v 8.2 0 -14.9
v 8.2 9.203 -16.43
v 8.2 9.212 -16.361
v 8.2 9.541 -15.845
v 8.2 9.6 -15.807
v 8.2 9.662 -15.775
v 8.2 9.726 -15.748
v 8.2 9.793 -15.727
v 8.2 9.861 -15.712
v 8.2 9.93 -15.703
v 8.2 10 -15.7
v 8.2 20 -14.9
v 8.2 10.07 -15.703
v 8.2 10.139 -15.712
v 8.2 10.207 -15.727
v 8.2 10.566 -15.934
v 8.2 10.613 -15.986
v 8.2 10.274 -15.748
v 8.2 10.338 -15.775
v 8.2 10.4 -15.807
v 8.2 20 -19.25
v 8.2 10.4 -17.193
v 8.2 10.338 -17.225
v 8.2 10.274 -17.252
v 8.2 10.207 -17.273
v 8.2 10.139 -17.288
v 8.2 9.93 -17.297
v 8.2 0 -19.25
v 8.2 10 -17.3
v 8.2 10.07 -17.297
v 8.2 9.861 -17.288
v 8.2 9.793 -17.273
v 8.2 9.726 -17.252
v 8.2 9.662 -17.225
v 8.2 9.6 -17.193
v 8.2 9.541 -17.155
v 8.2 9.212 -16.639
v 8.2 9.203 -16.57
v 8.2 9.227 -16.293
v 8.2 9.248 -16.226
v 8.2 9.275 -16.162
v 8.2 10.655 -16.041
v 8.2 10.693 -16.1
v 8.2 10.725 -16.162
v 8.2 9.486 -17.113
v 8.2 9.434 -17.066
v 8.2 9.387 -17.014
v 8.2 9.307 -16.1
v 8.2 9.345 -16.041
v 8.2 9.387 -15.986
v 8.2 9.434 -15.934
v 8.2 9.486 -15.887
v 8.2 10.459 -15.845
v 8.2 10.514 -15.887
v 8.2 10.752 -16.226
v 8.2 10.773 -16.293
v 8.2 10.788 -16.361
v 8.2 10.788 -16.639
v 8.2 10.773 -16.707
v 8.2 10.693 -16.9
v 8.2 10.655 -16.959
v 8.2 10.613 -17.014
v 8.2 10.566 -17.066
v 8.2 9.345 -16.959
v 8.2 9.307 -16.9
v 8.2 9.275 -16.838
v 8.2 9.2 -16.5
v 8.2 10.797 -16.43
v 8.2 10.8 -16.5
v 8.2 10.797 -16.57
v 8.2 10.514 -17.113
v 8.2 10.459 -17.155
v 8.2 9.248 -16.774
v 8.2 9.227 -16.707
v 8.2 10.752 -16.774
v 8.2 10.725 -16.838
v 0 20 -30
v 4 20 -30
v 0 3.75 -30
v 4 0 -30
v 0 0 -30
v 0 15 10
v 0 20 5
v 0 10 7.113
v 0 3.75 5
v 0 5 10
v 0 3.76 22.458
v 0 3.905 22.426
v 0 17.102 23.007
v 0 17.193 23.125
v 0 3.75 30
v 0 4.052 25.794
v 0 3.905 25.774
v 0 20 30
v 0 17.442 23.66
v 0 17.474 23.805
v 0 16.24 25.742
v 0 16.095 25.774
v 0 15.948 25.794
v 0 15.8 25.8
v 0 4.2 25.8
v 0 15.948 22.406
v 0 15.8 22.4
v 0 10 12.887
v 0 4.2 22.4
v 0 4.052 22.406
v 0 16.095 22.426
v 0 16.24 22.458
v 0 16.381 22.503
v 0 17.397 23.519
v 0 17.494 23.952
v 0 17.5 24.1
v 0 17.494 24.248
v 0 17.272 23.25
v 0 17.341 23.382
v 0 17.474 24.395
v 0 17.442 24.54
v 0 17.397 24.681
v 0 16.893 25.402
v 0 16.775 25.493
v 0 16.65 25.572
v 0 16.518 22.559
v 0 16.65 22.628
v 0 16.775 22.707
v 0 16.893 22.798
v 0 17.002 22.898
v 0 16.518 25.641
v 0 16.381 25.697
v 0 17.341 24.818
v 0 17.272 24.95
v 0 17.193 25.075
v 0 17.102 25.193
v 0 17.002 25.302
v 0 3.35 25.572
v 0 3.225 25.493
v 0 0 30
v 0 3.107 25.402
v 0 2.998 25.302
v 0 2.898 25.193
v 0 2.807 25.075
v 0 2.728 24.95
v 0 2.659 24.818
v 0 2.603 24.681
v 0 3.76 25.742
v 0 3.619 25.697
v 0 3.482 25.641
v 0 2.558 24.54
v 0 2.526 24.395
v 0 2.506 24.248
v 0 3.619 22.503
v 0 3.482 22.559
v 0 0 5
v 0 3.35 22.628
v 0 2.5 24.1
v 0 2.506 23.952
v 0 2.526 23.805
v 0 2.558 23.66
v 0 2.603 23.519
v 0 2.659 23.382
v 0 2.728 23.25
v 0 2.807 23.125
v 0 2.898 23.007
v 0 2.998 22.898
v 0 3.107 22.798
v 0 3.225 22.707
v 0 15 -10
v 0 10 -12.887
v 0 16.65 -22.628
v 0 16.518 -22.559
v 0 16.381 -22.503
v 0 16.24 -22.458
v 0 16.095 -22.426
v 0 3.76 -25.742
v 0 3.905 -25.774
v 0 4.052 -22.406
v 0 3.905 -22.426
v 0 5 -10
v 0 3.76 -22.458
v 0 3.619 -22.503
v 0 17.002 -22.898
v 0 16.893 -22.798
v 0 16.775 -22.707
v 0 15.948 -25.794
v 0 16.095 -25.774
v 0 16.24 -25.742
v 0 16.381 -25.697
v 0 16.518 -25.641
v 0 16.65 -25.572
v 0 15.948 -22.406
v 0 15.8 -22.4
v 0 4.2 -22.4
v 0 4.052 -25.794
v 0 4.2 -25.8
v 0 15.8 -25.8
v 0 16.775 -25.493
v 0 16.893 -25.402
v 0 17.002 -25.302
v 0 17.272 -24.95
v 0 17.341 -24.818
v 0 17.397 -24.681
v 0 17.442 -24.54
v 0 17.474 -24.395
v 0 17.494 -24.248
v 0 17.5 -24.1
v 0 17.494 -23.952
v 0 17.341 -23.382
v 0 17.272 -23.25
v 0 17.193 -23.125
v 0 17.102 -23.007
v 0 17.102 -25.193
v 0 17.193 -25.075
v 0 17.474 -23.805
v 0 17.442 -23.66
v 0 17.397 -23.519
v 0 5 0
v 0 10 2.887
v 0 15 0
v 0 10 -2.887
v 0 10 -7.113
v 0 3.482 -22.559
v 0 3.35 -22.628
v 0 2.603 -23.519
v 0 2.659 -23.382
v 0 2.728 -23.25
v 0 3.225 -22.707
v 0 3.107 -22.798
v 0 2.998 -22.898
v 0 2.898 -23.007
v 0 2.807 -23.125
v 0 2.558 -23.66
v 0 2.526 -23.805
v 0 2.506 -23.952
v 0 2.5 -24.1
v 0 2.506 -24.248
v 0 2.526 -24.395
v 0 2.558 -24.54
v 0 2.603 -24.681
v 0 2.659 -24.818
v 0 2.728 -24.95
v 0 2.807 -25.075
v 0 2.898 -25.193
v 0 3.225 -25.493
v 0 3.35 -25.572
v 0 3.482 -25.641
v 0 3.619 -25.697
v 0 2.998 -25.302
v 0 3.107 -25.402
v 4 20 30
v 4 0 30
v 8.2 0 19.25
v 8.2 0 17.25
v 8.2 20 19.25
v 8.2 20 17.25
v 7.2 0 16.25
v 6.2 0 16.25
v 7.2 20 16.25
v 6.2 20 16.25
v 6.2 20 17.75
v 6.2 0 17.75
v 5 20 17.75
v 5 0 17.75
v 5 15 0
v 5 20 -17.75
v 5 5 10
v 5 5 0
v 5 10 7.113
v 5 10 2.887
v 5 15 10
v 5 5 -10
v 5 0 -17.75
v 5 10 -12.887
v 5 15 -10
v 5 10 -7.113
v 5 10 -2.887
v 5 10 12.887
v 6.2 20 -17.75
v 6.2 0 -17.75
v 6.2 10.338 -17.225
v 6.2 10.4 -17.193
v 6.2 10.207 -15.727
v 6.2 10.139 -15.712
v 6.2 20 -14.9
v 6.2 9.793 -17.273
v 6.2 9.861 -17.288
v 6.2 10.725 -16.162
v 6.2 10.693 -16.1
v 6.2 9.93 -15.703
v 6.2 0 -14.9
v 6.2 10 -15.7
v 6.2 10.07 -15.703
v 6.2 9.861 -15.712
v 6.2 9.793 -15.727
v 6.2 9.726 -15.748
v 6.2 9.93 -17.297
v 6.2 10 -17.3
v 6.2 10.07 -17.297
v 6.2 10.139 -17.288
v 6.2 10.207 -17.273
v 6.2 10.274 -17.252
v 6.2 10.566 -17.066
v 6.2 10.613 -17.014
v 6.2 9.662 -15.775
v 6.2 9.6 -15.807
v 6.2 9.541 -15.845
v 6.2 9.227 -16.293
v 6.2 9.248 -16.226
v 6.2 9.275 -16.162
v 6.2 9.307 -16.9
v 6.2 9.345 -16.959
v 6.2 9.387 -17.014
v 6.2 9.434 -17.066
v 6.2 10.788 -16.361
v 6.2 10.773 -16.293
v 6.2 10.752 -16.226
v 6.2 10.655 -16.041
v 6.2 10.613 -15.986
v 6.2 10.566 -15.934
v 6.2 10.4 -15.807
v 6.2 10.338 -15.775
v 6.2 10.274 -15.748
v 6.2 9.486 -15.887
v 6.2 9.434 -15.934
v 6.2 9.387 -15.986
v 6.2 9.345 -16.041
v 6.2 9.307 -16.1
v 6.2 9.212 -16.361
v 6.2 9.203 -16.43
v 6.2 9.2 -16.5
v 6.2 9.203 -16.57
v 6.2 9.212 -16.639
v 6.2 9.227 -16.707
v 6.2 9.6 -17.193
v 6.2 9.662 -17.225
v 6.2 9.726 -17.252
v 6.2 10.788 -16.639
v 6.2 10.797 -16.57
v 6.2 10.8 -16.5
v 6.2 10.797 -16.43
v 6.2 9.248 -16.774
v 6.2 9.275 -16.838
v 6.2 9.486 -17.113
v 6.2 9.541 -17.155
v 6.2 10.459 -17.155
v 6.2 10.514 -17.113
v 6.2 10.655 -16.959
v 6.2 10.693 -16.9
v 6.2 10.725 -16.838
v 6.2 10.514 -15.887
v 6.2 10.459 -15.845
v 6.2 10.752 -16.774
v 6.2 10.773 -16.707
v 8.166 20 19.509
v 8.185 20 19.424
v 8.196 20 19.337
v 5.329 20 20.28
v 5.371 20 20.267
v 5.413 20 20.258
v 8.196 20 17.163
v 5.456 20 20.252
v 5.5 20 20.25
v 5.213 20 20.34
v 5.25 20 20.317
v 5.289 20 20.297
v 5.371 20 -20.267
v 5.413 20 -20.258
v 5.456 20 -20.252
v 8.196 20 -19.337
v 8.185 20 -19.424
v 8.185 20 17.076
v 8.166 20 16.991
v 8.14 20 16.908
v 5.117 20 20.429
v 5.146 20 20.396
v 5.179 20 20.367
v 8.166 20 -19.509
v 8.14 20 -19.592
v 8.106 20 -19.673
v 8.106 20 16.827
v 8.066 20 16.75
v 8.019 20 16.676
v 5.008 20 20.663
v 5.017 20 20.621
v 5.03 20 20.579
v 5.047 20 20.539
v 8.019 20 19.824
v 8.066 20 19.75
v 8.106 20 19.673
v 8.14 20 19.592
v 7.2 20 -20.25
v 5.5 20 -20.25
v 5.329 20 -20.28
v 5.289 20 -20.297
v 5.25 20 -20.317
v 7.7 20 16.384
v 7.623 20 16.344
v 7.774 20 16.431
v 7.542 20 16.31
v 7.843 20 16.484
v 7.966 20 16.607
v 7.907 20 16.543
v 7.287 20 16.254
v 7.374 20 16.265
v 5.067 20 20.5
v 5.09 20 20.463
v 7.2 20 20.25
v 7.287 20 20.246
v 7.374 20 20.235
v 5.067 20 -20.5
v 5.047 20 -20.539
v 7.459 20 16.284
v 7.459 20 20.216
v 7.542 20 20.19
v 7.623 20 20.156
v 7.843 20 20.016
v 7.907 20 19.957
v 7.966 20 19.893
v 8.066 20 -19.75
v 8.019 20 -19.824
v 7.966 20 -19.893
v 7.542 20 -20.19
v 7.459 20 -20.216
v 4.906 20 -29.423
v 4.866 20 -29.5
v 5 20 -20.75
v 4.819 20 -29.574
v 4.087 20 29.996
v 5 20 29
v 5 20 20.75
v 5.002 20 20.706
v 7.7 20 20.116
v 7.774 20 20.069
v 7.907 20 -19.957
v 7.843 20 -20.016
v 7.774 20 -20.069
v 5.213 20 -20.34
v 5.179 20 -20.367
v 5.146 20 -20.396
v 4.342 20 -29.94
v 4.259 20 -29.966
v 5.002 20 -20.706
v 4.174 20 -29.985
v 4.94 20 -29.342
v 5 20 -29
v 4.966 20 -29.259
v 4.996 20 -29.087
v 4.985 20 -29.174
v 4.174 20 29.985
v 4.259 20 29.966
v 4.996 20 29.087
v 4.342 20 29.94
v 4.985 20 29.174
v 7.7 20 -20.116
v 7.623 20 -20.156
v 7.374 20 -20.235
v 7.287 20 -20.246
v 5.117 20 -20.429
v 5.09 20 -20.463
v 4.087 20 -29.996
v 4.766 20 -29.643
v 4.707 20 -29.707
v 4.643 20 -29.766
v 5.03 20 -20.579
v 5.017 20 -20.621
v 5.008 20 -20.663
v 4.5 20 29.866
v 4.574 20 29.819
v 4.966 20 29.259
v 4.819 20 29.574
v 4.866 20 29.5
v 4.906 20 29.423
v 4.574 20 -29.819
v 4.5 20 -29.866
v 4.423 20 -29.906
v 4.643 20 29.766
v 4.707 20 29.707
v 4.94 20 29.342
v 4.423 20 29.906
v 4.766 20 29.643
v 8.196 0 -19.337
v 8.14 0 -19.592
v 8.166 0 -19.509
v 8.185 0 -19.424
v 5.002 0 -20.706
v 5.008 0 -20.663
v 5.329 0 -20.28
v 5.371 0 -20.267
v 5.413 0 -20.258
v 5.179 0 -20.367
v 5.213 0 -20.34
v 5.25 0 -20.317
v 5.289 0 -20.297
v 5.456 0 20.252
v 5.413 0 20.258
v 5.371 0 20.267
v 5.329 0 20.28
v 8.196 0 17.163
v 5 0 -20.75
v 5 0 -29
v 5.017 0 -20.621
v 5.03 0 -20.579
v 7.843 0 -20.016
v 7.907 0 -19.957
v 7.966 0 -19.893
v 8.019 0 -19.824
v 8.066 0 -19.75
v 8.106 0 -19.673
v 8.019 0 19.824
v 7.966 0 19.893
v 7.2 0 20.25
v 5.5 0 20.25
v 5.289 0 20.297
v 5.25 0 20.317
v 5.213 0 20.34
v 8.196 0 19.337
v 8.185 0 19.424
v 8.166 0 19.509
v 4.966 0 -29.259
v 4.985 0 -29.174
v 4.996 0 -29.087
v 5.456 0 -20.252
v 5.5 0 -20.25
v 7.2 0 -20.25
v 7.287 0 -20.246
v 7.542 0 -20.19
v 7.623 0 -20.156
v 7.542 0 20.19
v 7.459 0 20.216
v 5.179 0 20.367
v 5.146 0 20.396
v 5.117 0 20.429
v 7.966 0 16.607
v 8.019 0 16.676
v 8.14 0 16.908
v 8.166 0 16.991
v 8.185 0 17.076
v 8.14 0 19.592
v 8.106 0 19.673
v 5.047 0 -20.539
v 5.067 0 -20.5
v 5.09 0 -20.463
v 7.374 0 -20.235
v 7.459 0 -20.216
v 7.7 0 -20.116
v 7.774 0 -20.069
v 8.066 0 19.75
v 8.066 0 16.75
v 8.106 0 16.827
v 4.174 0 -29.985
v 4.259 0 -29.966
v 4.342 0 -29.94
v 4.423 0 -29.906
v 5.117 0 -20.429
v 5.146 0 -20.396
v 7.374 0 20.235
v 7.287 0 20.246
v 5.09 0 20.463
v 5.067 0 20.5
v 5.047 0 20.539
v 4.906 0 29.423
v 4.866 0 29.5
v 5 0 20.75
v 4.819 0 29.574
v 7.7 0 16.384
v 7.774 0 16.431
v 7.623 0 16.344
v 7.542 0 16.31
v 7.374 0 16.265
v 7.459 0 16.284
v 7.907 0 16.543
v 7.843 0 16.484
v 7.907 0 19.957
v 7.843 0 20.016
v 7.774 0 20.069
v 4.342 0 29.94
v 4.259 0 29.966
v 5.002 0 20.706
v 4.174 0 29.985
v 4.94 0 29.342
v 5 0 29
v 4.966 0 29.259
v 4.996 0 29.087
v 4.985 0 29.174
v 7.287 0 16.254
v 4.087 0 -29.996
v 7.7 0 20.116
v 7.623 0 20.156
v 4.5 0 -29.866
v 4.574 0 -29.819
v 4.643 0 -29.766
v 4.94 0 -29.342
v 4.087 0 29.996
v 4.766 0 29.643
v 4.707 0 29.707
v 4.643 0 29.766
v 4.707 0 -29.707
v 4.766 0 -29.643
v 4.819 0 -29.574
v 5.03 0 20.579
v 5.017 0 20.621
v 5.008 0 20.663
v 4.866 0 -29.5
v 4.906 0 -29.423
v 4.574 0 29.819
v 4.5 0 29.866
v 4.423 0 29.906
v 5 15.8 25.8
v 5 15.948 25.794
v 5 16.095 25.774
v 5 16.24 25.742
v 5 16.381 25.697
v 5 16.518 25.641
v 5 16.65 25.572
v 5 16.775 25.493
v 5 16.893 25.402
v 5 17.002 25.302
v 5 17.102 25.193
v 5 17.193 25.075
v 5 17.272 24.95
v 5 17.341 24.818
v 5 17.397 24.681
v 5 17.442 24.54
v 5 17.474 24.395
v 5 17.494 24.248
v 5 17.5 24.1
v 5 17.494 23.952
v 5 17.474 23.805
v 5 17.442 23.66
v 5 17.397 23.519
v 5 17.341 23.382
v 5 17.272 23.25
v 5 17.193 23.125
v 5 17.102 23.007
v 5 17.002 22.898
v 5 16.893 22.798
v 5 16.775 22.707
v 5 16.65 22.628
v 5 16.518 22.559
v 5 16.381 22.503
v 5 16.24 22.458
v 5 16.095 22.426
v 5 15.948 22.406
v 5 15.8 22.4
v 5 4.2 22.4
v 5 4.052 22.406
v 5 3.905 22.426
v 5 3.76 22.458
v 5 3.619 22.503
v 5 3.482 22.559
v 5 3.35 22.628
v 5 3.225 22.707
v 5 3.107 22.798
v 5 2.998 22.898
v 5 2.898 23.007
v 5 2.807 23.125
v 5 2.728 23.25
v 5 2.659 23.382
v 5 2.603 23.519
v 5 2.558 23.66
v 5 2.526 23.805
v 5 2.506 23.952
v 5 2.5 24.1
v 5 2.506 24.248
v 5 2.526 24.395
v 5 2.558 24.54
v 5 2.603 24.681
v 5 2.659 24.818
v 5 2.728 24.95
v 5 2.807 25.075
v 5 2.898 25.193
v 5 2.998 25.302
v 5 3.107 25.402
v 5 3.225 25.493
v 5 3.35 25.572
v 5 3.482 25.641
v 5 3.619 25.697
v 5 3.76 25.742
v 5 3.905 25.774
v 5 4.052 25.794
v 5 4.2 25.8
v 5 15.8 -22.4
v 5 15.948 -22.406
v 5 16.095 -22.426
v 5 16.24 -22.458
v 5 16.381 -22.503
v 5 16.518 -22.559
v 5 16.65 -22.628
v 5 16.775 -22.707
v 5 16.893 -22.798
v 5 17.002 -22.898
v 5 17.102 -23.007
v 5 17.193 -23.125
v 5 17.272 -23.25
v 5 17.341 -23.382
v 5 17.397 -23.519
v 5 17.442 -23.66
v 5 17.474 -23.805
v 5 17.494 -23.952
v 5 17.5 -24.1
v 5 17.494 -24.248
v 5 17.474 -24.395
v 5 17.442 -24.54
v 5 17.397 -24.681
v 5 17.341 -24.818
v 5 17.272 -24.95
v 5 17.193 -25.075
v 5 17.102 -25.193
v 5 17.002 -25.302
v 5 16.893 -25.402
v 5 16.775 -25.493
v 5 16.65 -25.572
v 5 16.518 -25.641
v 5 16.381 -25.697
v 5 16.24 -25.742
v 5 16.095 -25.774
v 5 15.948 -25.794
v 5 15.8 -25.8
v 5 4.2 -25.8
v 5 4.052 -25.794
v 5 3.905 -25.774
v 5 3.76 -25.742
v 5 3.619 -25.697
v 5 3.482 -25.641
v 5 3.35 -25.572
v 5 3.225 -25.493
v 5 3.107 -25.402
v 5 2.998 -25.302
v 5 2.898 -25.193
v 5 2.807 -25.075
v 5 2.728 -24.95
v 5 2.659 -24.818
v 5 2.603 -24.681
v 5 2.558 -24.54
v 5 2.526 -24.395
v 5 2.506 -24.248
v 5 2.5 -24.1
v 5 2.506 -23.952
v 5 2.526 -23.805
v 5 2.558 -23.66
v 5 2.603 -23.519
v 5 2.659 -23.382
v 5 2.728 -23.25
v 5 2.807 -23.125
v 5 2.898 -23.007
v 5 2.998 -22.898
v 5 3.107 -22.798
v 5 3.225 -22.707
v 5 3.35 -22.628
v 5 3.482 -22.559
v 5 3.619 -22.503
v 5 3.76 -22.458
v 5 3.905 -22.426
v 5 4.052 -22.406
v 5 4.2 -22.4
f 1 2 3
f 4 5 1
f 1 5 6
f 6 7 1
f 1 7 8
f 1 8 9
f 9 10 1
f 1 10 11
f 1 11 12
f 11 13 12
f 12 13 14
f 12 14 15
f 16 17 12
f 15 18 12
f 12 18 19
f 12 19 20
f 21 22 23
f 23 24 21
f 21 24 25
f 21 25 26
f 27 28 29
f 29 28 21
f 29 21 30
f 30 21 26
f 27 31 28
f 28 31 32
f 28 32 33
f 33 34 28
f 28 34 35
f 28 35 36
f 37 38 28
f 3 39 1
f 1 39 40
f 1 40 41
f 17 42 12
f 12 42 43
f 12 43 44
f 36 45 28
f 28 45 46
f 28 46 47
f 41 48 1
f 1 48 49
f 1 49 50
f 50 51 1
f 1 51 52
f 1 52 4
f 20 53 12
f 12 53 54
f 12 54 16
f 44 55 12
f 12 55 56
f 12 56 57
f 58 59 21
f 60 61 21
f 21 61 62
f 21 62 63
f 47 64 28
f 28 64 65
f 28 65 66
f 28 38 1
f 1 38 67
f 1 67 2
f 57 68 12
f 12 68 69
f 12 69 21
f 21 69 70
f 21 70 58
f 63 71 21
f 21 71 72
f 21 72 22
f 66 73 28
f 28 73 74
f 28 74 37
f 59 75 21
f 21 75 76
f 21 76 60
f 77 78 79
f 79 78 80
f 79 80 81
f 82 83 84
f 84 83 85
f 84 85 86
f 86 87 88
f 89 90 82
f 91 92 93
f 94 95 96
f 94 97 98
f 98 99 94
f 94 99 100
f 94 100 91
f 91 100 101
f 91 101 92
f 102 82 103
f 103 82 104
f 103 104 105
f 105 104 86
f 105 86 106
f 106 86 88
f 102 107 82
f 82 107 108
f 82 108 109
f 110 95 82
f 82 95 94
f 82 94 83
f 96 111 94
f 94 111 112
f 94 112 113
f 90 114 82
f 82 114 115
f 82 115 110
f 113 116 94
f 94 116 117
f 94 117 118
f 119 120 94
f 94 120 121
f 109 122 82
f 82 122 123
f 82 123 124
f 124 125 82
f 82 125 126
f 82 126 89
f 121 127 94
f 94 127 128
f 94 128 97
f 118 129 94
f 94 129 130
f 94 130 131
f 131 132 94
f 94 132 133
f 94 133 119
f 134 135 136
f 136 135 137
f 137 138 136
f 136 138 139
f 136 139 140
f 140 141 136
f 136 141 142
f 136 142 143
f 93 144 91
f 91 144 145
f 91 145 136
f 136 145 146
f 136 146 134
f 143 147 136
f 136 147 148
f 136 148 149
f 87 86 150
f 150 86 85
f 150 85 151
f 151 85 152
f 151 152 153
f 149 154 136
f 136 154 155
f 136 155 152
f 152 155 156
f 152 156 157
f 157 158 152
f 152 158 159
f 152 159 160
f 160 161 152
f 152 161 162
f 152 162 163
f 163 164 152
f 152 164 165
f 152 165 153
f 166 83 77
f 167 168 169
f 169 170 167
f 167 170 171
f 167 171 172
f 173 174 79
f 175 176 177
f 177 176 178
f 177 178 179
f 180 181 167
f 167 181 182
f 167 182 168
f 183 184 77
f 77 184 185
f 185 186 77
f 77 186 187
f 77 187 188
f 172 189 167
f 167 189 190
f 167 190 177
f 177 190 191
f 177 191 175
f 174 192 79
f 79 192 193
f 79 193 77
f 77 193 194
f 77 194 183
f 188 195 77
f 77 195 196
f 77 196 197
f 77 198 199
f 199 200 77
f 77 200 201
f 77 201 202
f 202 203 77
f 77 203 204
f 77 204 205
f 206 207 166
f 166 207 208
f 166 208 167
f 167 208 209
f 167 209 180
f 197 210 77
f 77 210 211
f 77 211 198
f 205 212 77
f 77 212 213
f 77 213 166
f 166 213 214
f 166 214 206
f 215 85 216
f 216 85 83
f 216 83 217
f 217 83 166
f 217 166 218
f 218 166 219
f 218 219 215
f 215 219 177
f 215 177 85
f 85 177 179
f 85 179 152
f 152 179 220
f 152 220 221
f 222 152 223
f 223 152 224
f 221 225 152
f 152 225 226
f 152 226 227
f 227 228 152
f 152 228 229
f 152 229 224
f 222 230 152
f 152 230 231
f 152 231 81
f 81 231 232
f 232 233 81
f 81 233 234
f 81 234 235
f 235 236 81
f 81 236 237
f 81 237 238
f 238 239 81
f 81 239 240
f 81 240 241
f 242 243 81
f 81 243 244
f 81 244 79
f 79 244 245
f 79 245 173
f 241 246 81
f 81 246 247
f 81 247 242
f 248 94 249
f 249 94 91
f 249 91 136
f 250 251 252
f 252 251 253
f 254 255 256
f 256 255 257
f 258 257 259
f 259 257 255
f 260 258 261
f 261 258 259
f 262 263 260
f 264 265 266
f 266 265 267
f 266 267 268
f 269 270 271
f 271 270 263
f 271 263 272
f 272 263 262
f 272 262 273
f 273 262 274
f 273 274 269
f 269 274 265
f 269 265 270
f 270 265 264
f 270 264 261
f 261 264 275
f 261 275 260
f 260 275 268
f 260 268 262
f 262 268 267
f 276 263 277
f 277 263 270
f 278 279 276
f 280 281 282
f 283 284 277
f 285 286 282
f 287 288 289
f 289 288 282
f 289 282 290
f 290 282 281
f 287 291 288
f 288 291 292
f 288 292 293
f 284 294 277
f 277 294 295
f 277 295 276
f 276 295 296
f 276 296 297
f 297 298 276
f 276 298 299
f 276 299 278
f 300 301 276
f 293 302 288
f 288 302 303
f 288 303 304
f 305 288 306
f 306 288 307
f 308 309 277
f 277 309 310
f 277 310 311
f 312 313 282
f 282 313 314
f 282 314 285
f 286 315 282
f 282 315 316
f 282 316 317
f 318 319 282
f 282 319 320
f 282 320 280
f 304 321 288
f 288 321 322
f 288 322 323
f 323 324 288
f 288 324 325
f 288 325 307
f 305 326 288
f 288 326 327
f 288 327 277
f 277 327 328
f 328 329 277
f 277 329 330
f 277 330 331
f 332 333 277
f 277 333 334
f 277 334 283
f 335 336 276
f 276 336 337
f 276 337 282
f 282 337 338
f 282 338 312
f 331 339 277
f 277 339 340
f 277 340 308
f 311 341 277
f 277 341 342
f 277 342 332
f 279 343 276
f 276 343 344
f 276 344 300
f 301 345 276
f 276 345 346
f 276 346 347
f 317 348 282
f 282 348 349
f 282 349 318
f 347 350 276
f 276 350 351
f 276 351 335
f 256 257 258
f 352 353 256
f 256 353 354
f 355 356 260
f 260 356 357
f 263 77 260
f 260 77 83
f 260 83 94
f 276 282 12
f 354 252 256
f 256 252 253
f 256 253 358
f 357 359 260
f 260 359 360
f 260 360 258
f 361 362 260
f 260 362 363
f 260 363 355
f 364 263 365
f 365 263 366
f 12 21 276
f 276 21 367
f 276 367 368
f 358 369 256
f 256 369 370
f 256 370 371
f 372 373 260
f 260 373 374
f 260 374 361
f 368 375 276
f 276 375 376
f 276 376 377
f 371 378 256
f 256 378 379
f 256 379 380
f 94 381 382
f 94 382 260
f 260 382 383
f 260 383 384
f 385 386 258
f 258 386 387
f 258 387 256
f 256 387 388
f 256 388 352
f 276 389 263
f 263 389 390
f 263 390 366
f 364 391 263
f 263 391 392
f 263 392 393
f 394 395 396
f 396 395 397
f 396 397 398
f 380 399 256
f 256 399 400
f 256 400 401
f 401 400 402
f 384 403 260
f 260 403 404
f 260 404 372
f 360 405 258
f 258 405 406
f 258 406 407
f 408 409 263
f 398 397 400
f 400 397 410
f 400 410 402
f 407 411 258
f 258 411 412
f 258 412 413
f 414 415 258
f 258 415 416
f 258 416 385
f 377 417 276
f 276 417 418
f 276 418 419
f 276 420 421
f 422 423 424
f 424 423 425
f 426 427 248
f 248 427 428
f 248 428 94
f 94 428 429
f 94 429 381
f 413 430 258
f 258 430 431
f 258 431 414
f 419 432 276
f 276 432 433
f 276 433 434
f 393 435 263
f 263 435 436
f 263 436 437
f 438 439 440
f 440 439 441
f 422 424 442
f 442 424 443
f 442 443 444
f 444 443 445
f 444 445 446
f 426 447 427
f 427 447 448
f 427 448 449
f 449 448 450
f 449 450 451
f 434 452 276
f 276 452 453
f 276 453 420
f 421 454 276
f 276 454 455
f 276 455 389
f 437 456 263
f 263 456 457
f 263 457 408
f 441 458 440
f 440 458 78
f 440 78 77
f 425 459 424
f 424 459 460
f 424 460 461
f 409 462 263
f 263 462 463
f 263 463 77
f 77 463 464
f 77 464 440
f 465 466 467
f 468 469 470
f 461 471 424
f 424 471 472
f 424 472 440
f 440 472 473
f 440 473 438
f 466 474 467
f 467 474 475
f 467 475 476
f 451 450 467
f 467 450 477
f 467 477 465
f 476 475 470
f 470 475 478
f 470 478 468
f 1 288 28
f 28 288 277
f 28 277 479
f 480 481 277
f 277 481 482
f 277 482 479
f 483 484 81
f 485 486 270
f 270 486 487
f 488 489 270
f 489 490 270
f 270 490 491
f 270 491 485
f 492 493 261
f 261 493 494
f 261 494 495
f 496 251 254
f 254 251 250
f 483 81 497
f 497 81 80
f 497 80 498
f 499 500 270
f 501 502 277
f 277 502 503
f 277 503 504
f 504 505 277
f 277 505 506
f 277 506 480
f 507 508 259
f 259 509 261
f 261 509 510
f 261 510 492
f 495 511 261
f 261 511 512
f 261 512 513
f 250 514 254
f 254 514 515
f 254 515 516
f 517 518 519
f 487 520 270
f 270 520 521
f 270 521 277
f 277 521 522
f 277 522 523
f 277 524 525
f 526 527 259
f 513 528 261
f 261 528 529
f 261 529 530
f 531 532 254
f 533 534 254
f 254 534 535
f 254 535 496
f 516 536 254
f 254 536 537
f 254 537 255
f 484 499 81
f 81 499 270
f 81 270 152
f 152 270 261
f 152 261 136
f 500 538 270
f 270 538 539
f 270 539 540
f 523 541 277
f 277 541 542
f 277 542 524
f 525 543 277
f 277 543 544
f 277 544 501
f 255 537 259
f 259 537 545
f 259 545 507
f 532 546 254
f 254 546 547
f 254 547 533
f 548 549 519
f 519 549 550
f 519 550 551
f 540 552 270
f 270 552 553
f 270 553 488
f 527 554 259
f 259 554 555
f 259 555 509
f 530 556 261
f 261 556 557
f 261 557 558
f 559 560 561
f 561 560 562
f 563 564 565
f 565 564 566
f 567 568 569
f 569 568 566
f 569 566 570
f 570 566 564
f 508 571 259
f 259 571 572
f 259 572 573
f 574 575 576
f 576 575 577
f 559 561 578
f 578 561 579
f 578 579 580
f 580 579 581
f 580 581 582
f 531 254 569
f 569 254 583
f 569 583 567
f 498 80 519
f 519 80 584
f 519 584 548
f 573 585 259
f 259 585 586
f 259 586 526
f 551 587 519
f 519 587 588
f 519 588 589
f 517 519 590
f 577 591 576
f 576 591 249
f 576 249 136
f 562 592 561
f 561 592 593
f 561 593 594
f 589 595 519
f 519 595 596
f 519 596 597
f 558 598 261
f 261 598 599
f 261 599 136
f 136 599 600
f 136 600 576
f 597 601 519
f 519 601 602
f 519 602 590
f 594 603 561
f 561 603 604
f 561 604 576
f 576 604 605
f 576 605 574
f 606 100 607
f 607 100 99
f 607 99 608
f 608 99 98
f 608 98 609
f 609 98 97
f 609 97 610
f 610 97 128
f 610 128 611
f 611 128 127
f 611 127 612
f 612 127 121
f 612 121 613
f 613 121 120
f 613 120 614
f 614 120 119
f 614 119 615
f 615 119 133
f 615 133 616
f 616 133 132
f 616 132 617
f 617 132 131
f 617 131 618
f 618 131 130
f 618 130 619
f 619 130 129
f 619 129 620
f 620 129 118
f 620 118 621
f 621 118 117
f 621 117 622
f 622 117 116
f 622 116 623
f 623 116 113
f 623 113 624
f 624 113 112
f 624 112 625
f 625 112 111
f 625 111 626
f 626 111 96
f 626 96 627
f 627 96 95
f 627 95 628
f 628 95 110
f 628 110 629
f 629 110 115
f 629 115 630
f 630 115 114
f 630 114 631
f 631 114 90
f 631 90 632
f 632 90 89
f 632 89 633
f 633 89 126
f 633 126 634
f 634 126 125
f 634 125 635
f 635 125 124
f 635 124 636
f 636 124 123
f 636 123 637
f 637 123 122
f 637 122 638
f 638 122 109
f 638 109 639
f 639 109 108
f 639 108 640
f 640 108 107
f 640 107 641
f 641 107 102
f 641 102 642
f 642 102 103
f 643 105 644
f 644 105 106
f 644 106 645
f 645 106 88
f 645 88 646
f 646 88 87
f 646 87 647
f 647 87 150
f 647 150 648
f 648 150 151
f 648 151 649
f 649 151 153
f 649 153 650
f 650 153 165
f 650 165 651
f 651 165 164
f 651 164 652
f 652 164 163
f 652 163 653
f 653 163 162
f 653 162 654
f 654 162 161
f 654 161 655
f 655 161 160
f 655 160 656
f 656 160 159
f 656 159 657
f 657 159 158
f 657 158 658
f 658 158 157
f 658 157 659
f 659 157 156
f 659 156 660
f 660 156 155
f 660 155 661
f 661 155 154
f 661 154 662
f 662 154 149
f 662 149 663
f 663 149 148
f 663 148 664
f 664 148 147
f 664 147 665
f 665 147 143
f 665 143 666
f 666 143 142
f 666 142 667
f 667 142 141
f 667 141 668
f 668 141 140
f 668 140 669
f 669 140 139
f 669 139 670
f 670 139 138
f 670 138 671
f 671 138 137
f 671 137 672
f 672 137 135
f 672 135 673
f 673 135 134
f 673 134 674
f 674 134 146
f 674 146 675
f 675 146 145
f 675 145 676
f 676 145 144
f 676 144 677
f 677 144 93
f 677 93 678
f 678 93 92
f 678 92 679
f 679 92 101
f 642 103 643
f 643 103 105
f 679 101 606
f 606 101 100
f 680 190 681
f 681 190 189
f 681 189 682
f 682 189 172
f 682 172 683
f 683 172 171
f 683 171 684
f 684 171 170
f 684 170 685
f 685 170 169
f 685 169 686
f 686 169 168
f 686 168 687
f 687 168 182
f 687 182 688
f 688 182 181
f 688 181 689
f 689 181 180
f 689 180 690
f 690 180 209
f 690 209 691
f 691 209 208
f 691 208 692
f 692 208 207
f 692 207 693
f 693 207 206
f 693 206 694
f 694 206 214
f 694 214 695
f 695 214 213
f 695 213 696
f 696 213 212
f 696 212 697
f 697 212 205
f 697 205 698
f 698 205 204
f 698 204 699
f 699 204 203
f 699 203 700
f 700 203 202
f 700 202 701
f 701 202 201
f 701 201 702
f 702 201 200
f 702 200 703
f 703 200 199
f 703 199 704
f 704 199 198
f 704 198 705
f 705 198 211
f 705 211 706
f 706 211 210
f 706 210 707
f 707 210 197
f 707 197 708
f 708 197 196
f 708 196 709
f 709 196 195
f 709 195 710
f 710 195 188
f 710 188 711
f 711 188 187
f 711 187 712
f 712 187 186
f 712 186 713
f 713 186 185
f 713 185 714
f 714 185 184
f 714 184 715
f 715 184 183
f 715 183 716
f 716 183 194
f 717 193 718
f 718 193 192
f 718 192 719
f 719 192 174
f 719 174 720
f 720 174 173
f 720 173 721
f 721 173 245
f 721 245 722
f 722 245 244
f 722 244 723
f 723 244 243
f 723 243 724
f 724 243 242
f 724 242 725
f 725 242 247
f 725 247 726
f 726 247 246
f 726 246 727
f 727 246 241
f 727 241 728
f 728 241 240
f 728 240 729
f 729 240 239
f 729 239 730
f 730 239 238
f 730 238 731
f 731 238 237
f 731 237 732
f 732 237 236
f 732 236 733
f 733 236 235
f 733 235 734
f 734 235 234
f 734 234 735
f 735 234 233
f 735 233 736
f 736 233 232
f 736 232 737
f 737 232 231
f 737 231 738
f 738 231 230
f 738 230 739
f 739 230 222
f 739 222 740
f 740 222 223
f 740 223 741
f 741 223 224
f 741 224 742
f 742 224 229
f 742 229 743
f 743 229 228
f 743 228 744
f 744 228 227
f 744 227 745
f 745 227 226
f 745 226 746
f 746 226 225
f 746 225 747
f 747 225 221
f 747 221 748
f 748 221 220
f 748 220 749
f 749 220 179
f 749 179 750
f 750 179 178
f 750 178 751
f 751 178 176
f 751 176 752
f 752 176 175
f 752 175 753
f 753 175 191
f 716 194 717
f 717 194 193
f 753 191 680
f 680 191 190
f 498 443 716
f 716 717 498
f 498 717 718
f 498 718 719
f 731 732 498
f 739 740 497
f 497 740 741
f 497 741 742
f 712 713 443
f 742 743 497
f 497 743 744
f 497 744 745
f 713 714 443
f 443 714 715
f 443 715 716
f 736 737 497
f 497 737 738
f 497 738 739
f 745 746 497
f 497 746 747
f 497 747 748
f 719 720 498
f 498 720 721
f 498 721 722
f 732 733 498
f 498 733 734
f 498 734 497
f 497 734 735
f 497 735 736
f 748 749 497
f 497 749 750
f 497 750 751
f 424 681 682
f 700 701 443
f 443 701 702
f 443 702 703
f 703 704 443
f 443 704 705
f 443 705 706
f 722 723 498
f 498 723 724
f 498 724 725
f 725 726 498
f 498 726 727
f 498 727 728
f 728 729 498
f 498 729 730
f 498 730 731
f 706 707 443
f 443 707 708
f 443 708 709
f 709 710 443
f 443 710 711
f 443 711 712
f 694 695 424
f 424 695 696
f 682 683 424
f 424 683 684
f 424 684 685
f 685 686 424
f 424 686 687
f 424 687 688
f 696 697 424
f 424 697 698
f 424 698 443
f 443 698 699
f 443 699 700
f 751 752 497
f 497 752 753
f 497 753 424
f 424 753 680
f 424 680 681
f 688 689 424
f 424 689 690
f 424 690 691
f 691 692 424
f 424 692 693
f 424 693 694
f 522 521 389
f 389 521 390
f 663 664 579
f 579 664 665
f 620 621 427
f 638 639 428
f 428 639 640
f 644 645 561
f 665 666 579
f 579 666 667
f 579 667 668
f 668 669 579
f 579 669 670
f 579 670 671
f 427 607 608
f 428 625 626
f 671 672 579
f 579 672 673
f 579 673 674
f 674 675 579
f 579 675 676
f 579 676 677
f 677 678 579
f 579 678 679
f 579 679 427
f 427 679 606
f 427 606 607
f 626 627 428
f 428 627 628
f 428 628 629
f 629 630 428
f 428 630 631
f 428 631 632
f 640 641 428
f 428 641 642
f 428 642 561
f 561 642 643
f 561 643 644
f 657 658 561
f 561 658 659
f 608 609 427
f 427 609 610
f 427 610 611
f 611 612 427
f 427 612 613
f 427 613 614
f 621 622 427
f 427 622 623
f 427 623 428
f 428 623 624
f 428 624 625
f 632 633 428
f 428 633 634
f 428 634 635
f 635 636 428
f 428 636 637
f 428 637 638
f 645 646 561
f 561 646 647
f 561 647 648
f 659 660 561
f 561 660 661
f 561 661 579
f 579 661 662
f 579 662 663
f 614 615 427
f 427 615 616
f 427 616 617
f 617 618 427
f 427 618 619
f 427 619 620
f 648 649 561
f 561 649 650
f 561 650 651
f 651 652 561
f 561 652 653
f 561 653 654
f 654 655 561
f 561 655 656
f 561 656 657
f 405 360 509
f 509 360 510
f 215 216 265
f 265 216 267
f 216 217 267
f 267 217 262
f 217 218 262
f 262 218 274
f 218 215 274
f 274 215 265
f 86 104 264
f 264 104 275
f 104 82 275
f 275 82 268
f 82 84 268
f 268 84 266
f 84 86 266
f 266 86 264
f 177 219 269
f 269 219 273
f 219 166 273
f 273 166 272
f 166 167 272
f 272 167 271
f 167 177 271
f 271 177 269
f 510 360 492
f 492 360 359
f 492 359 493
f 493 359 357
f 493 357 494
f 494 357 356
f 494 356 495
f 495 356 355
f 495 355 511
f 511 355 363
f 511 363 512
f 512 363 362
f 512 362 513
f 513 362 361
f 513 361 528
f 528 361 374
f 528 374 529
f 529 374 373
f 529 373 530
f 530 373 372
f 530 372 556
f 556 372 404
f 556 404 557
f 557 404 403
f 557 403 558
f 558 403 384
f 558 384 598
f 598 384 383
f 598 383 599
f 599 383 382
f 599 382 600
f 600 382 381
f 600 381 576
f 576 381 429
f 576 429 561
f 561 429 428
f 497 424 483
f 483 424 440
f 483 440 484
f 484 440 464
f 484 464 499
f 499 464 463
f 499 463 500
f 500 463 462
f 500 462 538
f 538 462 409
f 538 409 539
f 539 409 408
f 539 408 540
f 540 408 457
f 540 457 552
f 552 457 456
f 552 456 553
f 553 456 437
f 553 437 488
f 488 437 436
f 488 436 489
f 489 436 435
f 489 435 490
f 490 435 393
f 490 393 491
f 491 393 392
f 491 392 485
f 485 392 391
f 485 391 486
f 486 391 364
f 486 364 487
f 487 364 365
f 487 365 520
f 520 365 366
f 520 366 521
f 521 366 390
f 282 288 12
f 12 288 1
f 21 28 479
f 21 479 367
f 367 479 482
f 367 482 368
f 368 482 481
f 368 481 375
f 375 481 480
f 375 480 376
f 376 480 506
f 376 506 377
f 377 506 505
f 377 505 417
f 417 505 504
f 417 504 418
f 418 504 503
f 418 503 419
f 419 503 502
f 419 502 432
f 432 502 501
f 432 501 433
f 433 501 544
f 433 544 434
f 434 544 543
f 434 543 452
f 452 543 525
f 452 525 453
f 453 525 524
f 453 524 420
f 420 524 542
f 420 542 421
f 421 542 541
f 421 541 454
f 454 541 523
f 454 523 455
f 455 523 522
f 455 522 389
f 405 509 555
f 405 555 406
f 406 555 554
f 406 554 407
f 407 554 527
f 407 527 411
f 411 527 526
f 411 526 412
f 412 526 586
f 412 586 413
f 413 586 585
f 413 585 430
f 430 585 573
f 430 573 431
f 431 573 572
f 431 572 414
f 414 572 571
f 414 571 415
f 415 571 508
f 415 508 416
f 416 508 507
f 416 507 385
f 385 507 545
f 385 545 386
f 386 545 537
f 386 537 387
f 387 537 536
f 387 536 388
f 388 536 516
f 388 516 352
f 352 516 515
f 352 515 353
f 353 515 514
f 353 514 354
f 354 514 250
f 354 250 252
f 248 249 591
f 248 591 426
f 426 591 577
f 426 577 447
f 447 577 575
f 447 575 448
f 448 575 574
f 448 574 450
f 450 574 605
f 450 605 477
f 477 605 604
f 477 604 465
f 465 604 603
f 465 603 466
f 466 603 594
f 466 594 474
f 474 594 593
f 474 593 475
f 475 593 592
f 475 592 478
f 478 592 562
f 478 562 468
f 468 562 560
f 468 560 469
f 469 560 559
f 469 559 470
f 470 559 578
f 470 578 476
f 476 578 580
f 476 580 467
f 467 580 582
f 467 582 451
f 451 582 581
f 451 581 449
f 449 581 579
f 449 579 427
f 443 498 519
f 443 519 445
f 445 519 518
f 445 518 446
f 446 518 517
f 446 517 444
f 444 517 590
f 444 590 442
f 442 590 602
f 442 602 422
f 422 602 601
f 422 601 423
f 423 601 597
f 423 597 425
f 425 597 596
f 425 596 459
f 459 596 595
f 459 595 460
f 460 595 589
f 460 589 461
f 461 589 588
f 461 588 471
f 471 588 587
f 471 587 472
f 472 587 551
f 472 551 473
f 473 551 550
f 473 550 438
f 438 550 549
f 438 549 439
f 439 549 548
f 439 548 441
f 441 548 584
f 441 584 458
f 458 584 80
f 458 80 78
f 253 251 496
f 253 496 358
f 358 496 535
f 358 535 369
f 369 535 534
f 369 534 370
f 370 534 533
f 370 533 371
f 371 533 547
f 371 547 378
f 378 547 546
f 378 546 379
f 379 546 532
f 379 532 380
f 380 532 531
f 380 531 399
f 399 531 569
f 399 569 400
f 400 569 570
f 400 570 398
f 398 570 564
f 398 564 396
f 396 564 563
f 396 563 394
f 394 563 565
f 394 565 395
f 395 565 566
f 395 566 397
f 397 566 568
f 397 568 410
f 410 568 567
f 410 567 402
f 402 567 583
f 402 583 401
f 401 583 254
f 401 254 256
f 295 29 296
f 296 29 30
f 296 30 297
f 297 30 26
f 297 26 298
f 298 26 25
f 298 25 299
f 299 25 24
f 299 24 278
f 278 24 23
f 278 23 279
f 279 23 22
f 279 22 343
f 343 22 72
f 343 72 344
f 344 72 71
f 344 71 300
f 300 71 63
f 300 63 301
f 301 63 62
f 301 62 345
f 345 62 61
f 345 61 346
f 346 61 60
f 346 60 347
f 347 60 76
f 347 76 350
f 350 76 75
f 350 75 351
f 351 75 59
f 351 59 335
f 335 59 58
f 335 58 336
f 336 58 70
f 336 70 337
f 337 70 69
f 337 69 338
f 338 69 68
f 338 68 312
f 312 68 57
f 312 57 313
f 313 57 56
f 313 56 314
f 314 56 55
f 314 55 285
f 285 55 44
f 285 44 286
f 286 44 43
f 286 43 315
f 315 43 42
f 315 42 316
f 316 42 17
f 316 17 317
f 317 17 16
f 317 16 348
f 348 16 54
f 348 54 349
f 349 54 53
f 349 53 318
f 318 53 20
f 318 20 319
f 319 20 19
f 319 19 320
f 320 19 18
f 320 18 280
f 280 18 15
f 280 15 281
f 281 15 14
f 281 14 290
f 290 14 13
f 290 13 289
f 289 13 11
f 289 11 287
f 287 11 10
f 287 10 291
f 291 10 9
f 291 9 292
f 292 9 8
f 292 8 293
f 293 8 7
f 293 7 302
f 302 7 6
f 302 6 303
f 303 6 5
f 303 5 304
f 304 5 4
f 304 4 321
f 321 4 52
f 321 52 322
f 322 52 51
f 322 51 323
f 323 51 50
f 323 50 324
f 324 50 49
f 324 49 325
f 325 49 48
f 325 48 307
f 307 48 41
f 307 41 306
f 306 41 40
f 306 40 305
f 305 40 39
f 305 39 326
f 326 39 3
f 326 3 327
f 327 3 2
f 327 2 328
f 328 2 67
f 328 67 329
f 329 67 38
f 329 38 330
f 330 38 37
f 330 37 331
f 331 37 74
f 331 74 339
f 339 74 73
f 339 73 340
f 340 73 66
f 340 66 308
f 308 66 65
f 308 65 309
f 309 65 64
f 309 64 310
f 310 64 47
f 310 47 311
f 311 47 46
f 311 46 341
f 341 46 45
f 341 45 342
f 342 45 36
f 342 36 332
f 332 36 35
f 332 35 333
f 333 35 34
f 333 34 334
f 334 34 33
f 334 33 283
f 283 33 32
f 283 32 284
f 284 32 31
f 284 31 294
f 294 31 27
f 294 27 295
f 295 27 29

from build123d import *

# Parameters (mm, degrees)
BOSS_EXTRUDE1_DEPTH       = 20
M3_CLEARANCE_SLOT1_DEPTH  = 8.2
SKETCH5_W                 = 3.2
SKETCH5_H                 = 9.75
CUT_EXTRUDE1_DEPTH        = 37.976208567
CUT_EXTRUDE2_DEPTH        = 37.400549446
LPATTERN1_COUNT           = 2
LPATTERN1_PITCH           = 10
LPATTERN2_COUNT           = 2
LPATTERN2_PITCH           = 10
FILLET2_R                 = 0.5
SKETCH9_W                 = 2
SKETCH9_H                 = 20
BOSS_EXTRUDE2_DEPTH       = 1.35
FILLET1_R                 = 1
M2X0_4_TAPPED_HOLE1_D     = 1.6
M2X0_4_TAPPED_HOLE1_DEPTH = 2


# Read off the part's stored shape, not the designer's step: M3 Clearance Slot1
with BuildPart() as part:
    # Sketch2 → Boss-Extrude1 (new body)
    with BuildSketch(Plane(origin=(0, 0, 0), x_dir=(1, 0, 0), z_dir=(0, 1, 0))):
        Polygon((0, -30), (0, 30), (8.2, 30), (8.2, 16.25), (6.2, 16.25), (6.2, 17.75), (5, 17.75), (5, -17.75), (6.2, -17.75), (6.2, -16.25), (8.2, -16.25), (8.2, -30), align=None)
    extrude(amount=BOSS_EXTRUDE1_DEPTH)

    # M3 Clearance Slot1 outline → M3 Clearance Slot1 (cut)
    with BuildSketch(Plane.YZ):
        with BuildLine():
            ThreePointArc((15.8, 22.4), (17.5, 24.1), (15.8, 25.8))
            Line((15.8, 25.8), (4.2, 25.8))
            ThreePointArc((4.2, 25.8), (2.5, 24.1), (4.2, 22.4))
            Line((4.2, 22.4), (15.8, 22.4))
        make_face()
        with BuildLine():
            ThreePointArc((15.8, -25.8), (17.5, -24.1), (15.8, -22.4))
            Line((15.8, -22.4), (4.2, -22.4))
            ThreePointArc((4.2, -22.4), (2.5, -24.1), (4.2, -25.8))
            Line((4.2, -25.8), (15.8, -25.8))
        make_face()
    extrude(amount=M3_CLEARANCE_SLOT1_DEPTH, mode=Mode.SUBTRACT)

    # Sketch5 → Cut-Extrude1 (cut, through all)
    with BuildSketch(Plane.XZ):
        with Locations((6.6, 25.125)):
            Rectangle(SKETCH5_W, SKETCH5_H)
        with Locations((6.6, -25.125)):
            Rectangle(SKETCH5_W, SKETCH5_H)
    extrude(amount=-CUT_EXTRUDE1_DEPTH, mode=Mode.SUBTRACT)

    # Sketch8 → Cut-Extrude2 (cut, through all)
    with BuildSketch(Plane(origin=(5, 0, 0), x_dir=(0, 0, -1), z_dir=(1, 0, 0))):
        Polygon((0, 5), (2.886751346, 10), (0, 15), (-2.886751346, 10), align=None)
    cut_extrude2 = extrude(amount=-CUT_EXTRUDE2_DEPTH, mode=Mode.SUBTRACT)

    # LPattern1: Cut-Extrude2 ×2
    with Locations(*[(0, 0, i * LPATTERN1_PITCH) for i in range(1, LPATTERN1_COUNT)]):
        add(cut_extrude2, mode=Mode.SUBTRACT)

    # LPattern2: Cut-Extrude2 ×2
    with Locations(*[(0, 0, -i * LPATTERN2_PITCH) for i in range(1, LPATTERN2_COUNT)]):
        add(cut_extrude2, mode=Mode.SUBTRACT)

    # Fillet2
    fillet2_edges = [part.edges().sort_by_distance(p)[0] for p in [
        (5, 10, 20.25),
        (5, 10, -20.25),
    ]]
    fillet(fillet2_edges, radius=FILLET2_R)

    # Sketch9 → Boss-Extrude2 (add)
    with BuildSketch(Plane.XY.offset(-16.25)):
        with Locations((7.2, 10)):
            Rectangle(SKETCH9_W, SKETCH9_H)
    extrude(amount=BOSS_EXTRUDE2_DEPTH)

    # Fillet1
    fillet1_edges = [part.edges().sort_by_distance(p)[0] for p in [
        (8.2, 10, 16.25),
        (8.2, 10, 20.25),
        (5, 10, 30),
        (8.2, 10, -20.25),
        (5, 10, -30),
    ]]
    fillet(fillet1_edges, radius=FILLET1_R)

    # M2x0.4 Tapped Hole1
    with Locations(Plane(origin=(8.2, 0, 0), x_dir=(0, 0, -1), z_dir=(1, 0, 0))):
        with Locations((16.5, 10)):
            Hole(M2X0_4_TAPPED_HOLE1_D / 2, depth=M2X0_4_TAPPED_HOLE1_DEPTH)


solid = part.part
